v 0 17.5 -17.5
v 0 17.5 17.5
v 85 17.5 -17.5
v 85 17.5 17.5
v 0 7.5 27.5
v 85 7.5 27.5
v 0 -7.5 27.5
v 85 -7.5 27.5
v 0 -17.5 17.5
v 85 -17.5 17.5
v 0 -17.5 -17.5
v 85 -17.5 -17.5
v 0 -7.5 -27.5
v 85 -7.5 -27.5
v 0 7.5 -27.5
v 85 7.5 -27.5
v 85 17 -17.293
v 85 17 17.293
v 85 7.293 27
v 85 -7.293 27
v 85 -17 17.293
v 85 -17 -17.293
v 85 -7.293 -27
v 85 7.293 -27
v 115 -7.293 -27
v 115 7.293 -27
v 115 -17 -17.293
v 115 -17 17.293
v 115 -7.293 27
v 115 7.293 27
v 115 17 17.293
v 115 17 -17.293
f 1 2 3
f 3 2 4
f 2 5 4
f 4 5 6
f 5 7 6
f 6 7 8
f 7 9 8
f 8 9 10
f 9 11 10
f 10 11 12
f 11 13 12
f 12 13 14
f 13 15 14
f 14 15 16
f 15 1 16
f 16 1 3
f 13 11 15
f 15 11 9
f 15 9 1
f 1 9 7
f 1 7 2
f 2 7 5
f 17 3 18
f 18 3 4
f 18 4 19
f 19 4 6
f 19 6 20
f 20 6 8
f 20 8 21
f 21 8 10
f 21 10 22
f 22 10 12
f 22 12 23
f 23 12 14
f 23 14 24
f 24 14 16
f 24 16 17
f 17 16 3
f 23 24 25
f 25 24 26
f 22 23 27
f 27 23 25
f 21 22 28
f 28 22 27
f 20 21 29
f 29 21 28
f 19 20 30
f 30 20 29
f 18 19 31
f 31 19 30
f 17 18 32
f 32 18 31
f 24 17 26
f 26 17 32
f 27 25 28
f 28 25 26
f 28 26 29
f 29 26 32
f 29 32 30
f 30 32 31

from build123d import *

# Parameters (mm, degrees)
BOSS_EXTRUDE1_DEPTH = 115
CUT_EXTRUDE1_DEPTH  = 30


with BuildPart() as part:
    # Sketch1 → Boss-Extrude1 (new body)
    with BuildSketch(Plane(origin=(0, 0, 0), x_dir=(0, 0, -1), z_dir=(1, 0, 0))):
        Polygon((-17.5, 17.5), (-27.5, 7.5), (-27.5, -7.5), (-17.5, -17.5), (17.5, -17.5), (27.5, -7.5), (27.5, 7.5), (17.5, 17.5), align=None)
    extrude(amount=BOSS_EXTRUDE1_DEPTH)

    # Sketch2 → Cut-Extrude1 (cut)
    with BuildSketch(Plane(origin=(115, 0, 0), x_dir=(0, 0, -1), z_dir=(1, 0, 0))):
        Polygon((27.5, 7.5), (17.5, 17.5), (-17.5, 17.5), (-27.5, 7.5), (-27.5, -7.5), (-17.5, -17.5), (17.5, -17.5), (27.5, -7.5), align=None)
        Polygon((27, 7.292893219), (17.292893219, 17), (-17.292893219, 17), (-27, 7.292893219), (-27, -7.292893219), (-17.292893219, -17), (17.292893219, -17), (27, -7.292893219), align=None, mode=Mode.SUBTRACT)
    extrude(amount=-CUT_EXTRUDE1_DEPTH, mode=Mode.SUBTRACT)


solid = part.part
